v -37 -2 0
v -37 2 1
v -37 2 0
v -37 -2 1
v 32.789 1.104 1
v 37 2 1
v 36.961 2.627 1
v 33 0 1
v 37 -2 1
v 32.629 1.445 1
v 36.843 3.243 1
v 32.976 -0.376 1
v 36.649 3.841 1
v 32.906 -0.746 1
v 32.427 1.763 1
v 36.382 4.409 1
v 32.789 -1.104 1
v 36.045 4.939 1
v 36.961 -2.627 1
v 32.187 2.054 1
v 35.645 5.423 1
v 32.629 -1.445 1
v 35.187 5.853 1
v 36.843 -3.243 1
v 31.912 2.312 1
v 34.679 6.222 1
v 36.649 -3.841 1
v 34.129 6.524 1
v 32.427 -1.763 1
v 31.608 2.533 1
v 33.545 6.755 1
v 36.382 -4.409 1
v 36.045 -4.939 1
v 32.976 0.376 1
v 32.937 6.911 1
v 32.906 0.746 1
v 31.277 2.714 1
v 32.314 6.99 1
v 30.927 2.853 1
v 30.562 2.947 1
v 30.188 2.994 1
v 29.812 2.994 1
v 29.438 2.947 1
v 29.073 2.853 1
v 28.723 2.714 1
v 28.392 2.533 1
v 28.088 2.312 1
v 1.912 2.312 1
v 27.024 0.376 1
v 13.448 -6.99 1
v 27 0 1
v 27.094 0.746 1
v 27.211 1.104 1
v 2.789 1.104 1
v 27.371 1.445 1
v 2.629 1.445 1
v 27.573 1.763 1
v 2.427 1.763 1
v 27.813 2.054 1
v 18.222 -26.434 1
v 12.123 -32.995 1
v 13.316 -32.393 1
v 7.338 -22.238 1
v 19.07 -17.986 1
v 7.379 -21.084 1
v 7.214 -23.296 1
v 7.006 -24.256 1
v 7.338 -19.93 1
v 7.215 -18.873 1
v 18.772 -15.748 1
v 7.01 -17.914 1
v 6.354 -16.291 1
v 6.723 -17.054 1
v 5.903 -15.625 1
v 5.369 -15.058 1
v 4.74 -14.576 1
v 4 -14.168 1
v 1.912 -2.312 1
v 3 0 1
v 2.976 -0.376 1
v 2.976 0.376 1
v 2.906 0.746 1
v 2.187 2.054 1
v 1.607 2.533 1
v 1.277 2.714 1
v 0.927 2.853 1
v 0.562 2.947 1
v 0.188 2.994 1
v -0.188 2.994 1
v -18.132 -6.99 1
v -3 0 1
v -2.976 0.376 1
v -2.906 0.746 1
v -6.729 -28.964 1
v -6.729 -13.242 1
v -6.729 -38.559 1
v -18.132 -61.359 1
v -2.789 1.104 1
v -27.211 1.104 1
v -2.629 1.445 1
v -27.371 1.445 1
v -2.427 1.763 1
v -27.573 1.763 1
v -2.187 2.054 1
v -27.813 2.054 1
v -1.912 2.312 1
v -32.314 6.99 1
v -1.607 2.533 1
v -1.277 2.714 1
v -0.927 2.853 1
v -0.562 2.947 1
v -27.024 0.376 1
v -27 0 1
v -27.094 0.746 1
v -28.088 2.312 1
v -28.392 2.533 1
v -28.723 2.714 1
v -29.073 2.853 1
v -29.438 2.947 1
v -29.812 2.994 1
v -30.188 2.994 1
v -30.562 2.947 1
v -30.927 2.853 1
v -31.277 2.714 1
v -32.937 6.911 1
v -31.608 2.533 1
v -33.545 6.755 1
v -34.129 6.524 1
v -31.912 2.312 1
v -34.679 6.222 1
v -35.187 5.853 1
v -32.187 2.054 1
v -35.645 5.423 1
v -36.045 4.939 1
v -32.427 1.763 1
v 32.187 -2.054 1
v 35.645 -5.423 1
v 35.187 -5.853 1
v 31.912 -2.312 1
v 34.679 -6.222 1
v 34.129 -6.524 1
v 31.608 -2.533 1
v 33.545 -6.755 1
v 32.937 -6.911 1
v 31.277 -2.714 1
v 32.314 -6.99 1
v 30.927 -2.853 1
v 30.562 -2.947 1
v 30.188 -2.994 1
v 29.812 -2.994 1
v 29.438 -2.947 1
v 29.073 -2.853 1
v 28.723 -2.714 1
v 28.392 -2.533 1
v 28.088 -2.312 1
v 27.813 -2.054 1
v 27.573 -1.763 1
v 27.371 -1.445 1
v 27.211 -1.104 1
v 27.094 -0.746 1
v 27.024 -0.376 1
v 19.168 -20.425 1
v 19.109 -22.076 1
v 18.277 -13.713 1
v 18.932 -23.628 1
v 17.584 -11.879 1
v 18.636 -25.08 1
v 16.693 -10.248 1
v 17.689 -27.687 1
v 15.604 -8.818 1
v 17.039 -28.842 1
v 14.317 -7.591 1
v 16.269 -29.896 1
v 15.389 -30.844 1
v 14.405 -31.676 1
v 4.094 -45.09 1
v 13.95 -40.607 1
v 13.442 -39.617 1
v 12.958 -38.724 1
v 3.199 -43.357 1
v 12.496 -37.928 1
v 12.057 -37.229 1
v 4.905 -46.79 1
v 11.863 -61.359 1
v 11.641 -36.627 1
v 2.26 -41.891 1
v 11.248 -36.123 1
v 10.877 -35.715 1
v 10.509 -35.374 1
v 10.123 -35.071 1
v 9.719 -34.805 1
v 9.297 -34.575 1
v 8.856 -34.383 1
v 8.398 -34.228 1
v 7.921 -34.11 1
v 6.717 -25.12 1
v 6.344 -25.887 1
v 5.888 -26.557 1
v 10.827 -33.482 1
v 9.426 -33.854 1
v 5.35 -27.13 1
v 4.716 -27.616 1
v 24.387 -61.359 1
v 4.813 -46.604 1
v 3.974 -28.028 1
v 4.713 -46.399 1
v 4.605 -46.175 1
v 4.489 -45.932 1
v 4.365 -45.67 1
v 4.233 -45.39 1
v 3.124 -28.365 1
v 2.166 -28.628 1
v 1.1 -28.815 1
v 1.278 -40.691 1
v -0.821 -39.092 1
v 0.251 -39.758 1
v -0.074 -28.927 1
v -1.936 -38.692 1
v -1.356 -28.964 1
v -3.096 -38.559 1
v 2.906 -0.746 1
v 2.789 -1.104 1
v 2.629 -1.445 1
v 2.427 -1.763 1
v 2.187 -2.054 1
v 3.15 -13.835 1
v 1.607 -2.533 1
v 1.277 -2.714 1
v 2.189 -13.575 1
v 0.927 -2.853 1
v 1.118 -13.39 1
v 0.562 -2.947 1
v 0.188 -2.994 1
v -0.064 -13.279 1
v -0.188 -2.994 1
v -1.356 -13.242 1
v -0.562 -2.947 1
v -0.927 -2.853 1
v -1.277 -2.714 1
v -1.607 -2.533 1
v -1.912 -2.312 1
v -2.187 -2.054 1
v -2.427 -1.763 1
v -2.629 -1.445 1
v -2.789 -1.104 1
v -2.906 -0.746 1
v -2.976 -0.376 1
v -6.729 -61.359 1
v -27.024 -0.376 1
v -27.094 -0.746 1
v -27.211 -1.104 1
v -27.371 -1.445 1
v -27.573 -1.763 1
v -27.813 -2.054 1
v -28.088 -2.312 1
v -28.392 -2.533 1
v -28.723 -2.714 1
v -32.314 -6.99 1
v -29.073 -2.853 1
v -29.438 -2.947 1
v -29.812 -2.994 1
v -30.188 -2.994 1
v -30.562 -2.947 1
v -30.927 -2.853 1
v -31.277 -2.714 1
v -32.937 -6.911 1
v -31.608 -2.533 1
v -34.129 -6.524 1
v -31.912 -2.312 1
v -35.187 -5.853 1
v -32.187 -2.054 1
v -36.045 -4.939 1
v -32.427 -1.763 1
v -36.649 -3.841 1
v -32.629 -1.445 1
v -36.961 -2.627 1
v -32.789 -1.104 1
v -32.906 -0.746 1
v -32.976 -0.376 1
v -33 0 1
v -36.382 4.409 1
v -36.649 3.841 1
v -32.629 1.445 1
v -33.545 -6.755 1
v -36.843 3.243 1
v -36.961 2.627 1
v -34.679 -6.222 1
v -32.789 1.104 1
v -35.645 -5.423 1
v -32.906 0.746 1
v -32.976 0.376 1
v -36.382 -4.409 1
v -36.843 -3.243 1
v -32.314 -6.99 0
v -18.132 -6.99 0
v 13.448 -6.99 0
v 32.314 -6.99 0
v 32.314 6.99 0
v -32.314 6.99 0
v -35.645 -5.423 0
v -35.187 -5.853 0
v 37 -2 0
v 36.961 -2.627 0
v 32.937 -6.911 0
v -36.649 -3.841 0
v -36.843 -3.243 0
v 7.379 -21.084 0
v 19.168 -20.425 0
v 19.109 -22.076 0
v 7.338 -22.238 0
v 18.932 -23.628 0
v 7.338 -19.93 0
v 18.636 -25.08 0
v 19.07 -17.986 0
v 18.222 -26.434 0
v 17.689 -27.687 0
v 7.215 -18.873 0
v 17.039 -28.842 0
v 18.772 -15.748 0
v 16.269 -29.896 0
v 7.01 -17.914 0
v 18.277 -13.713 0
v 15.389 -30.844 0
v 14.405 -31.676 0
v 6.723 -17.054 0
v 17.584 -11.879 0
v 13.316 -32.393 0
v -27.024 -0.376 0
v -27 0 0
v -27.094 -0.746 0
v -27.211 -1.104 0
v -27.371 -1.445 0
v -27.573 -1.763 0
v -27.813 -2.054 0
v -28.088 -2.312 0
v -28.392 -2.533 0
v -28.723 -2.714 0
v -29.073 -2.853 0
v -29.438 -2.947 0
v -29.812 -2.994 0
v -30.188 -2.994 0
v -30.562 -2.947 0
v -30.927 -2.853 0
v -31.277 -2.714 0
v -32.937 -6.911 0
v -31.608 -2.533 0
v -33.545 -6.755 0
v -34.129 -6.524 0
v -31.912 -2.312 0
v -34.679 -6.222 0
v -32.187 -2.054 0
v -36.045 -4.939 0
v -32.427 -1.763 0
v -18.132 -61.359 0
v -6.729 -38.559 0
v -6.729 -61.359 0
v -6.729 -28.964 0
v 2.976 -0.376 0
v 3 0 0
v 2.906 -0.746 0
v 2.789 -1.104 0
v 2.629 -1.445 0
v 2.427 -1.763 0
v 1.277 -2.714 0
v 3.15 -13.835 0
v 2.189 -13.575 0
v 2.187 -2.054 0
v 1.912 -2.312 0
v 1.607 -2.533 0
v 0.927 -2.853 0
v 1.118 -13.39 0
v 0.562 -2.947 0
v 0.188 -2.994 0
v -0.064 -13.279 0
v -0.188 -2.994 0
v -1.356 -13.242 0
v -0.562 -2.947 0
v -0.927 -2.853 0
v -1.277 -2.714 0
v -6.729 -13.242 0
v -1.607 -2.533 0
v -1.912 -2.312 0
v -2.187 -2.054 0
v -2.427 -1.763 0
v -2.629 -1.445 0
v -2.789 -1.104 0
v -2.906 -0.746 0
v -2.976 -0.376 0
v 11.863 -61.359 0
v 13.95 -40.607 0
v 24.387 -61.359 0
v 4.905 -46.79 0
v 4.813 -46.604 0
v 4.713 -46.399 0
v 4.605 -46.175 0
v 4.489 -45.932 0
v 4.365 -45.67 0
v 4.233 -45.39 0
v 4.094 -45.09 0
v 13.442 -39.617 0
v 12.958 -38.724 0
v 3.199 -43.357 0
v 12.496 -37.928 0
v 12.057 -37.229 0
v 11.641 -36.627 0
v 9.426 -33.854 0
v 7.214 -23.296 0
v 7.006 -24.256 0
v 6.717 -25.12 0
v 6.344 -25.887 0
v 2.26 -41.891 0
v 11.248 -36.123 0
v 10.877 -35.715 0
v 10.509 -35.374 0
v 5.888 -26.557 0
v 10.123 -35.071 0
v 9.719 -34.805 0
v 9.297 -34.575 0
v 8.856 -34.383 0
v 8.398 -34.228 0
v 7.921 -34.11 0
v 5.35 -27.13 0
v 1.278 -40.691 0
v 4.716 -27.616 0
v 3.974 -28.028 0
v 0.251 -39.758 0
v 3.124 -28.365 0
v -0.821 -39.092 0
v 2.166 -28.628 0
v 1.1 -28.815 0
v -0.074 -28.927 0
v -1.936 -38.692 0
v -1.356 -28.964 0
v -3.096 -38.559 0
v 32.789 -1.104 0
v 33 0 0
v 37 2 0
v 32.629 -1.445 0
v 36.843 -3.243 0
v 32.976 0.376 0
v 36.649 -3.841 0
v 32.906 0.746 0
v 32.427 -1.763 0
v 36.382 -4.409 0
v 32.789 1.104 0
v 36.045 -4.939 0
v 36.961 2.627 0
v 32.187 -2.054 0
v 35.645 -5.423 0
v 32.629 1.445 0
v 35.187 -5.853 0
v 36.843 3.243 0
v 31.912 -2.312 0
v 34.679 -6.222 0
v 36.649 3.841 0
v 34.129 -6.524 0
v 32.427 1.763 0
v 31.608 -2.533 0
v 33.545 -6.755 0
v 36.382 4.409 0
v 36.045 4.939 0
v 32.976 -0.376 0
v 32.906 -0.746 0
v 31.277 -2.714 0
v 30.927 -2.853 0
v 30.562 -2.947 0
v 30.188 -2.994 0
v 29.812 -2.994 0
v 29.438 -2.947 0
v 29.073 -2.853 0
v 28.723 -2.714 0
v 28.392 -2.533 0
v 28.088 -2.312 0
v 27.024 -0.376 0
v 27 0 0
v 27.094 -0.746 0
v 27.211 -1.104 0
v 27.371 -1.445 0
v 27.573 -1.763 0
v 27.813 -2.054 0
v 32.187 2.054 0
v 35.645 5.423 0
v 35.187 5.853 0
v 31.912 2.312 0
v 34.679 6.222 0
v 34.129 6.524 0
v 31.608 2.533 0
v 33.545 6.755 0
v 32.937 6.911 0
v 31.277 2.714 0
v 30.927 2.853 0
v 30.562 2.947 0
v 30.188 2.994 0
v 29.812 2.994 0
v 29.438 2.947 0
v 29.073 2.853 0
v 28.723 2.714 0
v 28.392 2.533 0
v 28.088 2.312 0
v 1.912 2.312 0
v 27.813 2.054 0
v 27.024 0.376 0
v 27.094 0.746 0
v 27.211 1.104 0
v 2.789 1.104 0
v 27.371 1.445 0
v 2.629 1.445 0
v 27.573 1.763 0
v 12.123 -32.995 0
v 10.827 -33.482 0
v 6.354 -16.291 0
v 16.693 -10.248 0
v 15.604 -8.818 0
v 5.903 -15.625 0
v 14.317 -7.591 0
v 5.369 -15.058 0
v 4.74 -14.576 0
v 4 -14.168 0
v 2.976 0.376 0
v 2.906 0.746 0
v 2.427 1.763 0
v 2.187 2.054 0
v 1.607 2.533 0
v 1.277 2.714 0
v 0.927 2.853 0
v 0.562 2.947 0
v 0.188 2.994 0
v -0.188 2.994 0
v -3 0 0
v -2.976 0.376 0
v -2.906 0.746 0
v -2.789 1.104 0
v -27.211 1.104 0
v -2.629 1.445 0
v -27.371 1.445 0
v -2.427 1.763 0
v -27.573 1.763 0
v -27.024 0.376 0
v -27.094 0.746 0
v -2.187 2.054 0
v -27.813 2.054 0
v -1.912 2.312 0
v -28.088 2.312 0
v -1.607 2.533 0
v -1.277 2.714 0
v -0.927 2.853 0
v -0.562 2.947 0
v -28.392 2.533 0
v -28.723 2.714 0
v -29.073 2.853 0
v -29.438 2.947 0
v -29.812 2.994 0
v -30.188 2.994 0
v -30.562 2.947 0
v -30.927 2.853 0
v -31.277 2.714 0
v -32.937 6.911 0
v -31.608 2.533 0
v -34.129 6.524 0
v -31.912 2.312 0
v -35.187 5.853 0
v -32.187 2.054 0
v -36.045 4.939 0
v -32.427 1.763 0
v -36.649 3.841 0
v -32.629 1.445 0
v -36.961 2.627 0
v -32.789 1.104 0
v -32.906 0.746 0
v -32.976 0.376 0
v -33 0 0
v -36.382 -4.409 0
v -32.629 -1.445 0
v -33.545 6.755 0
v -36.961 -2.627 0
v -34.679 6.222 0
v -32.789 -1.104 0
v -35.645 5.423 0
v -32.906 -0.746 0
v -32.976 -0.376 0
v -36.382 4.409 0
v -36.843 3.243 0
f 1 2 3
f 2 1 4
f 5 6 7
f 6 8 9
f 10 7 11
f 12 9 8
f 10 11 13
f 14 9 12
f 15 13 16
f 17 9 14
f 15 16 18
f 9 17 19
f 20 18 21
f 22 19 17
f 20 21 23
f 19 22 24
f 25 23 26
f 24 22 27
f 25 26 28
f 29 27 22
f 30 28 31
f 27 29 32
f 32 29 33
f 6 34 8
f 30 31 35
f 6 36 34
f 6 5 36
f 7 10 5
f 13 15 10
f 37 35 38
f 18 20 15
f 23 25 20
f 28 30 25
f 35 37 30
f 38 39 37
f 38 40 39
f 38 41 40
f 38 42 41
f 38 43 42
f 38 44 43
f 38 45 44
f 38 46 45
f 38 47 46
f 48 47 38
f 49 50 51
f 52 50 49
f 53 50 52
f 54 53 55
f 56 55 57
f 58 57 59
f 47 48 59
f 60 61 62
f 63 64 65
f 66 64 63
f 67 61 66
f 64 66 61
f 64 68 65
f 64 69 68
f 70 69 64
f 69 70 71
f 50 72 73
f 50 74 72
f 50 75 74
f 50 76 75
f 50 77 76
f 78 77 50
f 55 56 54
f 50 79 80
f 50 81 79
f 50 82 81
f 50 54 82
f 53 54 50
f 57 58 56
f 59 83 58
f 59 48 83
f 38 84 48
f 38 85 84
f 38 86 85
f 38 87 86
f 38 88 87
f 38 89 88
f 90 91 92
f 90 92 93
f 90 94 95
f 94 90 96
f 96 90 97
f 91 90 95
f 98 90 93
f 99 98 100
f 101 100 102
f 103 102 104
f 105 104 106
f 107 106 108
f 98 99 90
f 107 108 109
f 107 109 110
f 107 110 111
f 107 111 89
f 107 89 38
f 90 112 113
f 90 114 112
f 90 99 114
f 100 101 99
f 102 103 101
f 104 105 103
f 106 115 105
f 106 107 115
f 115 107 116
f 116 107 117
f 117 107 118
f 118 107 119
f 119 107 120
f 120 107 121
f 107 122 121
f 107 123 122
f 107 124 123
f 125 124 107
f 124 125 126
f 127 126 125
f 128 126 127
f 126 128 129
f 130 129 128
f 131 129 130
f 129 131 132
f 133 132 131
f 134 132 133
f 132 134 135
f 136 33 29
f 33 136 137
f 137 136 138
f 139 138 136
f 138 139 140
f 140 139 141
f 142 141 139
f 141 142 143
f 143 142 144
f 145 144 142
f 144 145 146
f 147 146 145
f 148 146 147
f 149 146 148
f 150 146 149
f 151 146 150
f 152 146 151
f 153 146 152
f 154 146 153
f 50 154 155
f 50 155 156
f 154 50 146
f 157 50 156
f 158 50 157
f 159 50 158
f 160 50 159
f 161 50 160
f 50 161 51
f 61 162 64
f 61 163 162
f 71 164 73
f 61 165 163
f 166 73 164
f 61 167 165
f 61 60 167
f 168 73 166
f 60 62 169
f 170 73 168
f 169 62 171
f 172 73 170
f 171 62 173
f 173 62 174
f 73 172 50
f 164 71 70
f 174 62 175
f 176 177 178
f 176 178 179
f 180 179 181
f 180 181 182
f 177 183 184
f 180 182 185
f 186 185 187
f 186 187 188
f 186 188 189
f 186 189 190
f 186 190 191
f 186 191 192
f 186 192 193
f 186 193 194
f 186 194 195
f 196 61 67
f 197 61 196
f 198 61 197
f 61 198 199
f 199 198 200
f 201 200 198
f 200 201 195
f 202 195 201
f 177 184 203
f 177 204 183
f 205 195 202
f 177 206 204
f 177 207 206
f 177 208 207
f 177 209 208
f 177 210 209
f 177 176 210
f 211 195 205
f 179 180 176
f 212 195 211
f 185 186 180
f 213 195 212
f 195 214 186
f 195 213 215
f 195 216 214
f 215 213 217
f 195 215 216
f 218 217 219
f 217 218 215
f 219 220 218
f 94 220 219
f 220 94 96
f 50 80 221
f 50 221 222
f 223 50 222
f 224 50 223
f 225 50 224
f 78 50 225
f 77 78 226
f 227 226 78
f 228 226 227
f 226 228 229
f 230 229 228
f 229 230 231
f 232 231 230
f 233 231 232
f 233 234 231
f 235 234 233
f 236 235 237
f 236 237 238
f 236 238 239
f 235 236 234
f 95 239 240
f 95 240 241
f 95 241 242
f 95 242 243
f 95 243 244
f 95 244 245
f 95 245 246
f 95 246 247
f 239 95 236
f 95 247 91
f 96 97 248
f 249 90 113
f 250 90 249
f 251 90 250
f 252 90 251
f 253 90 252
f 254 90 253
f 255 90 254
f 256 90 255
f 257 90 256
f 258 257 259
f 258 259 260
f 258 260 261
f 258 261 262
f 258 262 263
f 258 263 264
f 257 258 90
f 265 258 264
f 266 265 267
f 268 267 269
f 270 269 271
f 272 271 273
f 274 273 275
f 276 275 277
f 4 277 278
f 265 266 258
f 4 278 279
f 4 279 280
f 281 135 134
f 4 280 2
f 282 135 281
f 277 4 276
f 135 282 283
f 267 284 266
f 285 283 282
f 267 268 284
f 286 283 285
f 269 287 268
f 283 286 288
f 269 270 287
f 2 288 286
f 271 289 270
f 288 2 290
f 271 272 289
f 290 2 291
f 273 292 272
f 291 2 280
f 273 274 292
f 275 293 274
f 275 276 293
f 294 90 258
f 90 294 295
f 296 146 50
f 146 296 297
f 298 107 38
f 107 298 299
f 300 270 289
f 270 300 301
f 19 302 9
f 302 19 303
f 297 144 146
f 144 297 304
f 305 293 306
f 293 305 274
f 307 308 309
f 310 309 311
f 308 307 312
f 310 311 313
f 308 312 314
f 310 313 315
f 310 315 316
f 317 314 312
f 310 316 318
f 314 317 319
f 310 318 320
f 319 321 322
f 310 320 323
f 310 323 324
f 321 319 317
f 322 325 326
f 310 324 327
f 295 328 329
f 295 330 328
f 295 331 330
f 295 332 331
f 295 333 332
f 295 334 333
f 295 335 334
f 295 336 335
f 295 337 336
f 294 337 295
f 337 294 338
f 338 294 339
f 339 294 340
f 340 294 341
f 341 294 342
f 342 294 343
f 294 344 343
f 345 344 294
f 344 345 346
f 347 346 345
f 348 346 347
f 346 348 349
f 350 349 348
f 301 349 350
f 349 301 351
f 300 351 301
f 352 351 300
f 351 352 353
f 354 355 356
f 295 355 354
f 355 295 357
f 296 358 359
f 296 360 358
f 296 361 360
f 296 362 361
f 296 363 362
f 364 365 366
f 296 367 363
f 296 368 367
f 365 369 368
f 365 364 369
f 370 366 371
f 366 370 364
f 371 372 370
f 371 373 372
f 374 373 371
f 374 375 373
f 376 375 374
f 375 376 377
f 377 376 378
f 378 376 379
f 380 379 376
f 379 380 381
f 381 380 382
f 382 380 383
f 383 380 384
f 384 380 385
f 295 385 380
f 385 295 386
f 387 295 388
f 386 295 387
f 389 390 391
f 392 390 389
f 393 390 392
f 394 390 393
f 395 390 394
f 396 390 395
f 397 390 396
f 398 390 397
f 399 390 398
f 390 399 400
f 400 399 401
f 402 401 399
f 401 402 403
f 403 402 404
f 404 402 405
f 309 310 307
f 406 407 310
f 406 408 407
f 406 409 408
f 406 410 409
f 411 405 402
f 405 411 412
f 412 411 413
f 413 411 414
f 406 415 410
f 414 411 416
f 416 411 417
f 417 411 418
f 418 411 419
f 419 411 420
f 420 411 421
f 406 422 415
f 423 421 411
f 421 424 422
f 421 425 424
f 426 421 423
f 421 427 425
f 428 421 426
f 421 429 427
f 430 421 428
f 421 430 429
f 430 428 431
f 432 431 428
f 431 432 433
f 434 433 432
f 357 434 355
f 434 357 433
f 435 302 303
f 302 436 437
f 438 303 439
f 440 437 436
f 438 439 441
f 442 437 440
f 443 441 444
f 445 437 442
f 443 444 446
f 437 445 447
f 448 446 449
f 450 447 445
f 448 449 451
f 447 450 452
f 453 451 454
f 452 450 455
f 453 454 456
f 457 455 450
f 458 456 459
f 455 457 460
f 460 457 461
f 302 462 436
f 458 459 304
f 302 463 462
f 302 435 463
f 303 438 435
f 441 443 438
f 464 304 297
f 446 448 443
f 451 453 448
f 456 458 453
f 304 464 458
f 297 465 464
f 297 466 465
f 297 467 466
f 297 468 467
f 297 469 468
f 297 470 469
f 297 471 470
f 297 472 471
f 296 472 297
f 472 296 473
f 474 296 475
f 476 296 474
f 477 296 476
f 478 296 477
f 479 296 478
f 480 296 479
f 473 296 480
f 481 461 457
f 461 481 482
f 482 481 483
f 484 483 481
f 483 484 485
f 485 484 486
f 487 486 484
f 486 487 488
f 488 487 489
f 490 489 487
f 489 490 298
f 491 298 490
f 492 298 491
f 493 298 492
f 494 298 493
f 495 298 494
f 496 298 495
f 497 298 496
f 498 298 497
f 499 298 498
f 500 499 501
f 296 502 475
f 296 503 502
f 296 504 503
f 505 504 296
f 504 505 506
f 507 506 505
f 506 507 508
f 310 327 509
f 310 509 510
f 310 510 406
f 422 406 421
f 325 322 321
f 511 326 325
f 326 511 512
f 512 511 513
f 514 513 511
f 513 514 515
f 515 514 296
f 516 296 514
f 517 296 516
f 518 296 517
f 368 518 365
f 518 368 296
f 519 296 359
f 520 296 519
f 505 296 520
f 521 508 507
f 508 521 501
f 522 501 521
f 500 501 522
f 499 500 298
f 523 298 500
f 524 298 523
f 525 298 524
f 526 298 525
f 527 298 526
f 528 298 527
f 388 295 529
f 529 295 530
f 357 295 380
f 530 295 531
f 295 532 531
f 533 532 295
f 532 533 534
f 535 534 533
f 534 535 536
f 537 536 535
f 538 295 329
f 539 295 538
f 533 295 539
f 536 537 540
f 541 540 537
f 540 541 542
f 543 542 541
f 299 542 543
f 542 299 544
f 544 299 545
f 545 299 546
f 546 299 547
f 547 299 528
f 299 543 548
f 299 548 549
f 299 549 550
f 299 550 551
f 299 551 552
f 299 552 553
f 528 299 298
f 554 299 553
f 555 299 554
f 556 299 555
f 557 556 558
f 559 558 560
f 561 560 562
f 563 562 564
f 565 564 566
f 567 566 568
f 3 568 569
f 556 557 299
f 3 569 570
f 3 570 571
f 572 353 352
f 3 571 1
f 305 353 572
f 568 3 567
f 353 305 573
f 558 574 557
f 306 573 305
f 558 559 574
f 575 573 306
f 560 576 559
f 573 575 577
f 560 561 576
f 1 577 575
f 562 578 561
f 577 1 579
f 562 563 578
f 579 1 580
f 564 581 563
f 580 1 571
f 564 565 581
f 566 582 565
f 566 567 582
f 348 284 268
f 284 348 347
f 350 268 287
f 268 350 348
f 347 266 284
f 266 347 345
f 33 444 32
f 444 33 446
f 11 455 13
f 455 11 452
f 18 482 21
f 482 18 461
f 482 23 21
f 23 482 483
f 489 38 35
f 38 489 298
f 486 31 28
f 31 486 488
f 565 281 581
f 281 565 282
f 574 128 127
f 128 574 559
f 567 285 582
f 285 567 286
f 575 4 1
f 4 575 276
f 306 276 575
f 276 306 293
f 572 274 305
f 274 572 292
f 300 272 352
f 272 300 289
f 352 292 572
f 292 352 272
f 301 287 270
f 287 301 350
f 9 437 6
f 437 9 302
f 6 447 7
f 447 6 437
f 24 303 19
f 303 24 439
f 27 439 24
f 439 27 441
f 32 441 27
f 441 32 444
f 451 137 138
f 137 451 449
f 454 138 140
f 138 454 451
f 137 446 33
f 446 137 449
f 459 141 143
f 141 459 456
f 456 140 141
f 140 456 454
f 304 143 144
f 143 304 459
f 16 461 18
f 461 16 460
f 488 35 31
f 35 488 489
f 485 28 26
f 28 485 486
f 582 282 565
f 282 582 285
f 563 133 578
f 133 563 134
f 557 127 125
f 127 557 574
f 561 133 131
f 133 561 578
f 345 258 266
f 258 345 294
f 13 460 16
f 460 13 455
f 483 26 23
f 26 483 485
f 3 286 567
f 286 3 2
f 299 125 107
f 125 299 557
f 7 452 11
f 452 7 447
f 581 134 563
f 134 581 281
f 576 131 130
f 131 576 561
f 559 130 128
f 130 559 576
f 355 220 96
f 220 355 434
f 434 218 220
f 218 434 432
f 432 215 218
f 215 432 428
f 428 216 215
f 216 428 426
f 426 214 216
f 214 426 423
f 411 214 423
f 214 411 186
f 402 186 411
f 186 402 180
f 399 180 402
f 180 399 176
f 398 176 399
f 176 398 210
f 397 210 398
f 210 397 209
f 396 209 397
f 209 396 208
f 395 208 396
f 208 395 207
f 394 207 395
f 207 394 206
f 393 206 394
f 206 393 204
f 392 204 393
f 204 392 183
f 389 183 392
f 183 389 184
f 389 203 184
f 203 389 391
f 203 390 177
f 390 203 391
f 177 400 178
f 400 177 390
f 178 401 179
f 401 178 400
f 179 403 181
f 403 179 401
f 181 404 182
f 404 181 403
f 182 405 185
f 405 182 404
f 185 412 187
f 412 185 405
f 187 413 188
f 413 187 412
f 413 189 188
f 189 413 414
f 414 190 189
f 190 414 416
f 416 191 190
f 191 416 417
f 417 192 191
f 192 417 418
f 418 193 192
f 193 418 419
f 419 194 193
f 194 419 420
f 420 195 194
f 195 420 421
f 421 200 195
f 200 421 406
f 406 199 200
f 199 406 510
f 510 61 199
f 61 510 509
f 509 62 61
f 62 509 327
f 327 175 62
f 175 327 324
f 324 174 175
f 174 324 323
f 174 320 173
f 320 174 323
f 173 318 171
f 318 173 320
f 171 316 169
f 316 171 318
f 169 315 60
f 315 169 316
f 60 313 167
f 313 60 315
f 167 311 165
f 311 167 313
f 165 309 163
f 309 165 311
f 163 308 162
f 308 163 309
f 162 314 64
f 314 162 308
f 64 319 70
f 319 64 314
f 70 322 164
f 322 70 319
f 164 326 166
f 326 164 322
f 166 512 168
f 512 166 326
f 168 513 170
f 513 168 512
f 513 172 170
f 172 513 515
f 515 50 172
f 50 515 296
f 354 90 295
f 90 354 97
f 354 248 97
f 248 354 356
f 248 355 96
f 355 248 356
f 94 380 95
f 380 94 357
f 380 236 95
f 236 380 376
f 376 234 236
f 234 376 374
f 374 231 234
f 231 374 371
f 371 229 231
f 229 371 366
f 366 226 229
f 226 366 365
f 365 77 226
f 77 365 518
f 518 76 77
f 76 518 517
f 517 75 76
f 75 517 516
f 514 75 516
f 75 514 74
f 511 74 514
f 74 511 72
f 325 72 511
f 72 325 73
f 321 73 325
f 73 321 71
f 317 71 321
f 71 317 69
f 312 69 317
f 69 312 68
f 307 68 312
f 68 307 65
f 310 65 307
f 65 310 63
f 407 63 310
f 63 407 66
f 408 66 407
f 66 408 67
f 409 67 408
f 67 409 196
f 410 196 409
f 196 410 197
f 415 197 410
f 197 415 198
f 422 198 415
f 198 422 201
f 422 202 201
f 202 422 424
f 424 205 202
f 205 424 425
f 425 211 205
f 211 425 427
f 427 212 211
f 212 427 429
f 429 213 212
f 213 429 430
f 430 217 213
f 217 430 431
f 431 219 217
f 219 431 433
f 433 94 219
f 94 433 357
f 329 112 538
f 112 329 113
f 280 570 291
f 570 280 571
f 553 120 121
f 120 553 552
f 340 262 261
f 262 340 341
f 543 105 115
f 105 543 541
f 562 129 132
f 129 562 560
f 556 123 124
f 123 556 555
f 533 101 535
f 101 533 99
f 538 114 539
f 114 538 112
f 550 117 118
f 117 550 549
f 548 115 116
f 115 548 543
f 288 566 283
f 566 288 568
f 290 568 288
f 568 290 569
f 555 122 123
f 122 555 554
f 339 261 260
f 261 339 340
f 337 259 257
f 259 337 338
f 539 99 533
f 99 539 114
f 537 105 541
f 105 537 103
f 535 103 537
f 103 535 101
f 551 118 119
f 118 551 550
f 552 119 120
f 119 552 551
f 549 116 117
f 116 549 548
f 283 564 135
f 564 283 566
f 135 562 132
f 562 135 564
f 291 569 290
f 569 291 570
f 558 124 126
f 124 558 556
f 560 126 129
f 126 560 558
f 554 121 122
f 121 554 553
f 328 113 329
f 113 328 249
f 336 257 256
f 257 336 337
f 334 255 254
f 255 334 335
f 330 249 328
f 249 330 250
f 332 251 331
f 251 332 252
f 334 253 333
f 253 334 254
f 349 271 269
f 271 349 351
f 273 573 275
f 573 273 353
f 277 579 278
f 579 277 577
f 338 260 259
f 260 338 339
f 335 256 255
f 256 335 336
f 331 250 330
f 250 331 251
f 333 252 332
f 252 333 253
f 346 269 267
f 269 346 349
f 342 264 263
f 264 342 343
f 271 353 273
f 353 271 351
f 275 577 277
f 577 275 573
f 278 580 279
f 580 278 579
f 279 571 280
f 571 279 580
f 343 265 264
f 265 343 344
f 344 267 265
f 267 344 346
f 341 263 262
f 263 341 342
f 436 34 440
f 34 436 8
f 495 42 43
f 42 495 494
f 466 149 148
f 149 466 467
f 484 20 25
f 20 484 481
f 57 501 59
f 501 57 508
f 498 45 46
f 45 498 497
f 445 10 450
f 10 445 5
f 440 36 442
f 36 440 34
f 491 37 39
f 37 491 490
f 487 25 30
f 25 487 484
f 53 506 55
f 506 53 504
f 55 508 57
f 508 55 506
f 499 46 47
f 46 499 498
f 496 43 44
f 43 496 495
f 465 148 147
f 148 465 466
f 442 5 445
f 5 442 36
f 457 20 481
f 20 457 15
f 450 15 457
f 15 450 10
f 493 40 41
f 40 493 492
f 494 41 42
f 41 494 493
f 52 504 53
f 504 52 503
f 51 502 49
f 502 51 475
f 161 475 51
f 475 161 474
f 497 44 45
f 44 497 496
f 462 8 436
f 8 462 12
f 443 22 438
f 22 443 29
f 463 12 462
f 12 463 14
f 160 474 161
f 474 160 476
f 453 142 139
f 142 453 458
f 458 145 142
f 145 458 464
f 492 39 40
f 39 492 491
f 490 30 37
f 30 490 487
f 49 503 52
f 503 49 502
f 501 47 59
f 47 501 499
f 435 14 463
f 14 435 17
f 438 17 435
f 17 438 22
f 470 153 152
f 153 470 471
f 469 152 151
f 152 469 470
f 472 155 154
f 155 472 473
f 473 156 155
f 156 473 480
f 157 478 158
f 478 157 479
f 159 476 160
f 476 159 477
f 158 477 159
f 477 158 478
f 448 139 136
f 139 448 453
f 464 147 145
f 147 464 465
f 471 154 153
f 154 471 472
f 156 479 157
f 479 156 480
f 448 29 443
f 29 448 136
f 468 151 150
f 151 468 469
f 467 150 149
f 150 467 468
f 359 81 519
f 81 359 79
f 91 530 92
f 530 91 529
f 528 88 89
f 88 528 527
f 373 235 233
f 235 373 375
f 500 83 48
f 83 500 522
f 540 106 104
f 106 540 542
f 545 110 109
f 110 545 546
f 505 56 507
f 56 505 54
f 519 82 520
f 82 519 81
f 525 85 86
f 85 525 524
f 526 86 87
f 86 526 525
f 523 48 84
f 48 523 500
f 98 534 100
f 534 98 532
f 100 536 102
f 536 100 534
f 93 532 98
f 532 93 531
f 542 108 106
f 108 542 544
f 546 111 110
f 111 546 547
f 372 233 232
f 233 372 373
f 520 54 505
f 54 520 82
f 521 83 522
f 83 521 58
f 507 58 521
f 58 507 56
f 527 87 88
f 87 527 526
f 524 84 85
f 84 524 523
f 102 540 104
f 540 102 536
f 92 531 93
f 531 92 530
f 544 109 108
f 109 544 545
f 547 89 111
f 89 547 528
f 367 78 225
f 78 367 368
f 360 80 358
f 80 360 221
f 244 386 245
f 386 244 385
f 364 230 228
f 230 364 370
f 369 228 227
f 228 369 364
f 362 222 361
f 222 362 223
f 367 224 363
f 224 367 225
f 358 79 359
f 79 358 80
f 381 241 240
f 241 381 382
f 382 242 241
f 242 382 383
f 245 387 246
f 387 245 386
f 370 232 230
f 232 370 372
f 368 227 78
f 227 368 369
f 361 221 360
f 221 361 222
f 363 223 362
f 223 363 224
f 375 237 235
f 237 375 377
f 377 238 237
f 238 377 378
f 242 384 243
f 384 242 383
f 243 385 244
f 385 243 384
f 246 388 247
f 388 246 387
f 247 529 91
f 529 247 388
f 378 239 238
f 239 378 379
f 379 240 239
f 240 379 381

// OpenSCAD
$fn = 50;


difference() {
	union() {
		translate(v = [0, 0, 0]) {
			rotate(a = [0, 0, 0]) {
				hull() {
					translate(v = [-32.0000000000, 2.0000000000, 0]) {
						rotate(a = [0, 0, 0]) {
							translate(v = [0, 0, 0]) {
								rotate(a = [0, 0, 0]) {
									cylinder(h = 1, r = 5);
								}
							}
						}
					}
					translate(v = [32.0000000000, 2.0000000000, 0]) {
						rotate(a = [0, 0, 0]) {
							translate(v = [0, 0, 0]) {
								rotate(a = [0, 0, 0]) {
									cylinder(h = 1, r = 5);
								}
							}
						}
					}
					translate(v = [-32.0000000000, -2.0000000000, 0]) {
						rotate(a = [0, 0, 0]) {
							translate(v = [0, 0, 0]) {
								rotate(a = [0, 0, 0]) {
									cylinder(h = 1, r = 5);
								}
							}
						}
					}
					translate(v = [32.0000000000, -2.0000000000, 0]) {
						rotate(a = [0, 0, 0]) {
							translate(v = [0, 0, 0]) {
								rotate(a = [0, 0, 0]) {
									cylinder(h = 1, r = 5);
								}
							}
						}
					}
				}
			}
		}
		translate(v = [0, -5, 0]) {
			rotate(a = [0, 0, 0]) {
				linear_extrude(height = 1) {
					text(font = "DejaVu Sans Mono:style=Bold", halign = "center", size = 57.0000000000, text = "R", valign = "top");
				}
			}
		}
	}
	union() {
		translate(v = [-30.0000000000, 0.0000000000, -125.0000000000]) {
			rotate(a = [0, 0, 0]) {
				cylinder(h = 250, r = 3.0000000000);
			}
		}
		translate(v = [30.0000000000, 0.0000000000, -125.0000000000]) {
			rotate(a = [0, 0, 0]) {
				cylinder(h = 250, r = 3.0000000000);
			}
		}
		translate(v = [30.0000000000, 0.0000000000, -125.0000000000]) {
			rotate(a = [0, 0, 0]) {
				cylinder(h = 250, r = 3.0000000000);
			}
		}
		translate(v = [0, 0, -125.0000000000]) {
			rotate(a = [0, 0, 0]) {
				cylinder(h = 250, r = 3.0000000000);
			}
		}
	}
}
